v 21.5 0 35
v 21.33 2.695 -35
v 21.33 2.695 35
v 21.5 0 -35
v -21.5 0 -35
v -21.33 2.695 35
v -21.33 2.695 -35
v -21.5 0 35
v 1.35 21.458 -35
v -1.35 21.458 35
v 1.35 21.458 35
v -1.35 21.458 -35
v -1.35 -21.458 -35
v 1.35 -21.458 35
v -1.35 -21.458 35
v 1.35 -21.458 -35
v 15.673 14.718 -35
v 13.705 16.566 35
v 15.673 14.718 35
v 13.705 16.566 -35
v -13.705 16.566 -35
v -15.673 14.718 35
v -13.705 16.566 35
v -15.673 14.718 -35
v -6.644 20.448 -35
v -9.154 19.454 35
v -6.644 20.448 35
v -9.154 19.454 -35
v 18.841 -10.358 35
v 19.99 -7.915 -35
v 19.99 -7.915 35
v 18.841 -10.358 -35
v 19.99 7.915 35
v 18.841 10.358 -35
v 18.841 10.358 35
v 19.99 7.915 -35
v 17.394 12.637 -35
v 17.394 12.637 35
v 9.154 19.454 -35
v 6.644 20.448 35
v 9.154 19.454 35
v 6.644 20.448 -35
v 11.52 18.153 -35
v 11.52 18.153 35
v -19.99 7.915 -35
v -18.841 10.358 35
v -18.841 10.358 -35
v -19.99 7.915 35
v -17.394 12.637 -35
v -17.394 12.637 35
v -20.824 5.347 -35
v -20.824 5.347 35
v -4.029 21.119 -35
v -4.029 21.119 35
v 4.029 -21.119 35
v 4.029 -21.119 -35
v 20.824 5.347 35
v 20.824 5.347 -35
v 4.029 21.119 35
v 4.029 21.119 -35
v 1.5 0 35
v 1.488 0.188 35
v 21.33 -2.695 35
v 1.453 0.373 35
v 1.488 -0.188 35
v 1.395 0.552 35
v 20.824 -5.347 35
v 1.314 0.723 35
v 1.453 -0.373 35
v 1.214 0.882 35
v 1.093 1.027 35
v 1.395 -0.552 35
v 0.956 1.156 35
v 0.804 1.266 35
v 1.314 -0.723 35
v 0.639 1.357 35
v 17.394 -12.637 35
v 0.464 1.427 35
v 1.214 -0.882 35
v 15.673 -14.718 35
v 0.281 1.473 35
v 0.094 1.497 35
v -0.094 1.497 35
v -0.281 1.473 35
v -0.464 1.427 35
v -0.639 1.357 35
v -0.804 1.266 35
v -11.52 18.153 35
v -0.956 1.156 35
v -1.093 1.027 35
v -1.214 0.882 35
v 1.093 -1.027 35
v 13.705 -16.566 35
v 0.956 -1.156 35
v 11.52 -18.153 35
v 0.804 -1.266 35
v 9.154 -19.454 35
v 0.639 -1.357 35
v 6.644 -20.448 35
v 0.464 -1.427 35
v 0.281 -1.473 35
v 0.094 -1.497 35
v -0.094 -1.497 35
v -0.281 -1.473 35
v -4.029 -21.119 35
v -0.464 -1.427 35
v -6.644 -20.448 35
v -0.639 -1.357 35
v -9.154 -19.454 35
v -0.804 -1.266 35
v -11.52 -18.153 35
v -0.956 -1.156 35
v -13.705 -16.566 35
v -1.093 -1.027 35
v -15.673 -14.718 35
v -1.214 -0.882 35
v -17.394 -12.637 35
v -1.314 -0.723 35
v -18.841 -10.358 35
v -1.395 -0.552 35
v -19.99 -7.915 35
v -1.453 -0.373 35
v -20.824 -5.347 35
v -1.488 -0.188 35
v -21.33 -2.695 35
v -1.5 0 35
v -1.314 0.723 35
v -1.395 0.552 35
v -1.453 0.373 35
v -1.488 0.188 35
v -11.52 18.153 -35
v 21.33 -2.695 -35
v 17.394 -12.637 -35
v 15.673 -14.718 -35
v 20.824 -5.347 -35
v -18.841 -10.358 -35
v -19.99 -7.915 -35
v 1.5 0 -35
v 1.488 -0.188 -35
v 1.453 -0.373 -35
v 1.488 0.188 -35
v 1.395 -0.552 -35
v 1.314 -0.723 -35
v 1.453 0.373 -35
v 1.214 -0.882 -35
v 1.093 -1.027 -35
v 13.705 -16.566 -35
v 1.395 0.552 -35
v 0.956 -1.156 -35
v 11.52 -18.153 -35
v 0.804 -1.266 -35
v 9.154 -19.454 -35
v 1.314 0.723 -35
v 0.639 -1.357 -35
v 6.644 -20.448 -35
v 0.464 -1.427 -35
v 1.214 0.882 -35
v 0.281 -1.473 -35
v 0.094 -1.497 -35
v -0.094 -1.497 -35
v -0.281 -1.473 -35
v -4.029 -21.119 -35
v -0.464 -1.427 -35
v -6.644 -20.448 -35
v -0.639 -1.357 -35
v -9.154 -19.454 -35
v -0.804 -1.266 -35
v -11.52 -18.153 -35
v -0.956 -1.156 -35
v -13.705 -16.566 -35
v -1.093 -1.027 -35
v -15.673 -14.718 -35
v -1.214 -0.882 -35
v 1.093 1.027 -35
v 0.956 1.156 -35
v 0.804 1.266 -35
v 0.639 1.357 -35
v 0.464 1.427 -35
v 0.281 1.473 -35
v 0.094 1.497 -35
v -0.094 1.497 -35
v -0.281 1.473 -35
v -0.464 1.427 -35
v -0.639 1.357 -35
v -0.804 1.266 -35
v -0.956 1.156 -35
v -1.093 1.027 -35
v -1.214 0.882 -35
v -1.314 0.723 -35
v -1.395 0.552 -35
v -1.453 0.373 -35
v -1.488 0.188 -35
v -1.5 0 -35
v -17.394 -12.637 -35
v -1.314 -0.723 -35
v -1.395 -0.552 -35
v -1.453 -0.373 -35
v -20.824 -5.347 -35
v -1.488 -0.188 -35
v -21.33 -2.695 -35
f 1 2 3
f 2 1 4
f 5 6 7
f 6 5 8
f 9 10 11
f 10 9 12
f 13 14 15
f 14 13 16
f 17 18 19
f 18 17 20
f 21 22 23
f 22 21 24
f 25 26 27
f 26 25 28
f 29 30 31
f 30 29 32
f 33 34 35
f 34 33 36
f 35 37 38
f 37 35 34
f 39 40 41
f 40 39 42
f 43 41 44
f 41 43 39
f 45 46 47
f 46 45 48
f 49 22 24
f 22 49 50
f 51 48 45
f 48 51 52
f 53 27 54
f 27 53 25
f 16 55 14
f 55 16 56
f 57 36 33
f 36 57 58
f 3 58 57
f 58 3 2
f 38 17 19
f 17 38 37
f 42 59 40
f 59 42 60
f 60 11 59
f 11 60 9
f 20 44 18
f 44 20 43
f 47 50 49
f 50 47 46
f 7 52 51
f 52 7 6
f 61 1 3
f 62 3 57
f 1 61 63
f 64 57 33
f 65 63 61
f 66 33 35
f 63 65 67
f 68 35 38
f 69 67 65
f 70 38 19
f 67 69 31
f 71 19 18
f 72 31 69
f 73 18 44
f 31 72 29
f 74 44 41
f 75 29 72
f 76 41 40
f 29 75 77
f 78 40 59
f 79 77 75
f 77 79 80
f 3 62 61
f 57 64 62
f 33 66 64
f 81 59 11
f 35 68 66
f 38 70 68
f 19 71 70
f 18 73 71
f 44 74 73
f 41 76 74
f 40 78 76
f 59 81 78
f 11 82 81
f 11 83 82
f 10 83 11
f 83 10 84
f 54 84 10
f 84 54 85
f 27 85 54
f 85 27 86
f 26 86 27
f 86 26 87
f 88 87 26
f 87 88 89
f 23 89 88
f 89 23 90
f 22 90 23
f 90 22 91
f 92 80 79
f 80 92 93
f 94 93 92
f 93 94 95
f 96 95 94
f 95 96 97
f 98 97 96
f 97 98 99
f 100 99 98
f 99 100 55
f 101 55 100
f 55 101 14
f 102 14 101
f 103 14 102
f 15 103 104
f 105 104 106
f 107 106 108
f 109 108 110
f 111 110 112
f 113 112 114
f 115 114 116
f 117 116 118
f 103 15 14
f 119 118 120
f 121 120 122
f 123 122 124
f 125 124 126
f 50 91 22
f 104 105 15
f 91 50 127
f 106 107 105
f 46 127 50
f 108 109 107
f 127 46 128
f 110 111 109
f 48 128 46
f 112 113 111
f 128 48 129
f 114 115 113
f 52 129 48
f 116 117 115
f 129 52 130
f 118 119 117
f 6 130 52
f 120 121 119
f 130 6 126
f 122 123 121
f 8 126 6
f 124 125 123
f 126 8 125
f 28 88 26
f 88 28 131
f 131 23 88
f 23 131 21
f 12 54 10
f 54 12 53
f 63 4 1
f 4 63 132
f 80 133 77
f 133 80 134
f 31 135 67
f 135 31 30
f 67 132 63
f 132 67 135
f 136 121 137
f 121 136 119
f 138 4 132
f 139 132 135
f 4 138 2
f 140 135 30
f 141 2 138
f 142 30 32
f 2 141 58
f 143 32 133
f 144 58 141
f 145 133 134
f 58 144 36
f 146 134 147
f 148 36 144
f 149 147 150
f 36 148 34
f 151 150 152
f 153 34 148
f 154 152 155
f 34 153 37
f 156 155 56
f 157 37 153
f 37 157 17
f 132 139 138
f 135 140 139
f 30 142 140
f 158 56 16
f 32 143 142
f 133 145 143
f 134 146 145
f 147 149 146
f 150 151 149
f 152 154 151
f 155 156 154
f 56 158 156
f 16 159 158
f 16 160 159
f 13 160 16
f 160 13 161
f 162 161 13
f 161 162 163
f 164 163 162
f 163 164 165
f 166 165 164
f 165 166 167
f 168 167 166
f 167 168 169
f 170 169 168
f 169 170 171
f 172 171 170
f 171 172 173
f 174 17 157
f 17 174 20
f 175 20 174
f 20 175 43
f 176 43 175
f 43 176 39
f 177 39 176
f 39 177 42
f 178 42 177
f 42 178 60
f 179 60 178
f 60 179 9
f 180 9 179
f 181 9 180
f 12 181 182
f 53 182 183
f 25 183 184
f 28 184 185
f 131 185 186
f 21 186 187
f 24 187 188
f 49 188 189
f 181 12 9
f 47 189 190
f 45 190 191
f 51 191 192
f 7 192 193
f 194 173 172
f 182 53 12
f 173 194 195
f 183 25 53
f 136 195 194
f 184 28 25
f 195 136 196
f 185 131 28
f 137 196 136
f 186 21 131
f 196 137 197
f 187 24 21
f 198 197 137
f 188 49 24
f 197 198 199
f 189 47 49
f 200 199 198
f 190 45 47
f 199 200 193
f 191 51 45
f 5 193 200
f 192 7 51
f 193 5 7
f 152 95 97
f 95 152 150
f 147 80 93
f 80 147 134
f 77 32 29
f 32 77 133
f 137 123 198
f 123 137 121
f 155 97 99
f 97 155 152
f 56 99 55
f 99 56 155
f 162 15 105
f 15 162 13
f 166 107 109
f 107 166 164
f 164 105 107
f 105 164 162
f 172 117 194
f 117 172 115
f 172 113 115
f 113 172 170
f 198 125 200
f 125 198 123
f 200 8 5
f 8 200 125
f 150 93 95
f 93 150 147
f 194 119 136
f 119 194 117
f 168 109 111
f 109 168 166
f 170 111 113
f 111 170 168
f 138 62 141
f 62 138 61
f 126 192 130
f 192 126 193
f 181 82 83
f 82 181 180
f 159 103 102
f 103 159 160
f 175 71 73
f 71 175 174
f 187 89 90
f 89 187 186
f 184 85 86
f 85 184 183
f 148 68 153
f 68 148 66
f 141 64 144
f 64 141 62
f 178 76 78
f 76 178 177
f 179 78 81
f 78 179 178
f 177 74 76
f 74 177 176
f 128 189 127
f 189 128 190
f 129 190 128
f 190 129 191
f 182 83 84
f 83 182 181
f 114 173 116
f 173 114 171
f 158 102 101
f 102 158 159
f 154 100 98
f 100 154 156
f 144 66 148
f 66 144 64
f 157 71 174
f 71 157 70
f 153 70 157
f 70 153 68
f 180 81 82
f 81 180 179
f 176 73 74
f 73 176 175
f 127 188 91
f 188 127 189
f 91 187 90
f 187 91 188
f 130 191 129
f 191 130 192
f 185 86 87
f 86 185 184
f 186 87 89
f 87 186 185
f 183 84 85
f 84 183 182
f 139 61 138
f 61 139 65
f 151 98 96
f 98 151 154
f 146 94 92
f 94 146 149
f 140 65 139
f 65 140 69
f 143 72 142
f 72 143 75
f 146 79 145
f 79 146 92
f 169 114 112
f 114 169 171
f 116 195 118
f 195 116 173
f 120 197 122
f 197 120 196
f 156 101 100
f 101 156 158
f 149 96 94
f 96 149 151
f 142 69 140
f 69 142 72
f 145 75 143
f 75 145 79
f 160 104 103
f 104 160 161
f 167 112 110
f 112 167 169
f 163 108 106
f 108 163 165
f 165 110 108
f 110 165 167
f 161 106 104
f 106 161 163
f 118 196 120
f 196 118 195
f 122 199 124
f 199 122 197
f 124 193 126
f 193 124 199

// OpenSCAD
$fn = 50;


difference() {
	union() {
		translate(v = [0, 0, -35.0000000000]) {
			cylinder(h = 70, r = 21.5000000000);
		}
	}
	union() {
		translate(v = [0, 0, -100.0000000000]) {
			cylinder(h = 200, r = 1.5000000000);
		}
	}
}
